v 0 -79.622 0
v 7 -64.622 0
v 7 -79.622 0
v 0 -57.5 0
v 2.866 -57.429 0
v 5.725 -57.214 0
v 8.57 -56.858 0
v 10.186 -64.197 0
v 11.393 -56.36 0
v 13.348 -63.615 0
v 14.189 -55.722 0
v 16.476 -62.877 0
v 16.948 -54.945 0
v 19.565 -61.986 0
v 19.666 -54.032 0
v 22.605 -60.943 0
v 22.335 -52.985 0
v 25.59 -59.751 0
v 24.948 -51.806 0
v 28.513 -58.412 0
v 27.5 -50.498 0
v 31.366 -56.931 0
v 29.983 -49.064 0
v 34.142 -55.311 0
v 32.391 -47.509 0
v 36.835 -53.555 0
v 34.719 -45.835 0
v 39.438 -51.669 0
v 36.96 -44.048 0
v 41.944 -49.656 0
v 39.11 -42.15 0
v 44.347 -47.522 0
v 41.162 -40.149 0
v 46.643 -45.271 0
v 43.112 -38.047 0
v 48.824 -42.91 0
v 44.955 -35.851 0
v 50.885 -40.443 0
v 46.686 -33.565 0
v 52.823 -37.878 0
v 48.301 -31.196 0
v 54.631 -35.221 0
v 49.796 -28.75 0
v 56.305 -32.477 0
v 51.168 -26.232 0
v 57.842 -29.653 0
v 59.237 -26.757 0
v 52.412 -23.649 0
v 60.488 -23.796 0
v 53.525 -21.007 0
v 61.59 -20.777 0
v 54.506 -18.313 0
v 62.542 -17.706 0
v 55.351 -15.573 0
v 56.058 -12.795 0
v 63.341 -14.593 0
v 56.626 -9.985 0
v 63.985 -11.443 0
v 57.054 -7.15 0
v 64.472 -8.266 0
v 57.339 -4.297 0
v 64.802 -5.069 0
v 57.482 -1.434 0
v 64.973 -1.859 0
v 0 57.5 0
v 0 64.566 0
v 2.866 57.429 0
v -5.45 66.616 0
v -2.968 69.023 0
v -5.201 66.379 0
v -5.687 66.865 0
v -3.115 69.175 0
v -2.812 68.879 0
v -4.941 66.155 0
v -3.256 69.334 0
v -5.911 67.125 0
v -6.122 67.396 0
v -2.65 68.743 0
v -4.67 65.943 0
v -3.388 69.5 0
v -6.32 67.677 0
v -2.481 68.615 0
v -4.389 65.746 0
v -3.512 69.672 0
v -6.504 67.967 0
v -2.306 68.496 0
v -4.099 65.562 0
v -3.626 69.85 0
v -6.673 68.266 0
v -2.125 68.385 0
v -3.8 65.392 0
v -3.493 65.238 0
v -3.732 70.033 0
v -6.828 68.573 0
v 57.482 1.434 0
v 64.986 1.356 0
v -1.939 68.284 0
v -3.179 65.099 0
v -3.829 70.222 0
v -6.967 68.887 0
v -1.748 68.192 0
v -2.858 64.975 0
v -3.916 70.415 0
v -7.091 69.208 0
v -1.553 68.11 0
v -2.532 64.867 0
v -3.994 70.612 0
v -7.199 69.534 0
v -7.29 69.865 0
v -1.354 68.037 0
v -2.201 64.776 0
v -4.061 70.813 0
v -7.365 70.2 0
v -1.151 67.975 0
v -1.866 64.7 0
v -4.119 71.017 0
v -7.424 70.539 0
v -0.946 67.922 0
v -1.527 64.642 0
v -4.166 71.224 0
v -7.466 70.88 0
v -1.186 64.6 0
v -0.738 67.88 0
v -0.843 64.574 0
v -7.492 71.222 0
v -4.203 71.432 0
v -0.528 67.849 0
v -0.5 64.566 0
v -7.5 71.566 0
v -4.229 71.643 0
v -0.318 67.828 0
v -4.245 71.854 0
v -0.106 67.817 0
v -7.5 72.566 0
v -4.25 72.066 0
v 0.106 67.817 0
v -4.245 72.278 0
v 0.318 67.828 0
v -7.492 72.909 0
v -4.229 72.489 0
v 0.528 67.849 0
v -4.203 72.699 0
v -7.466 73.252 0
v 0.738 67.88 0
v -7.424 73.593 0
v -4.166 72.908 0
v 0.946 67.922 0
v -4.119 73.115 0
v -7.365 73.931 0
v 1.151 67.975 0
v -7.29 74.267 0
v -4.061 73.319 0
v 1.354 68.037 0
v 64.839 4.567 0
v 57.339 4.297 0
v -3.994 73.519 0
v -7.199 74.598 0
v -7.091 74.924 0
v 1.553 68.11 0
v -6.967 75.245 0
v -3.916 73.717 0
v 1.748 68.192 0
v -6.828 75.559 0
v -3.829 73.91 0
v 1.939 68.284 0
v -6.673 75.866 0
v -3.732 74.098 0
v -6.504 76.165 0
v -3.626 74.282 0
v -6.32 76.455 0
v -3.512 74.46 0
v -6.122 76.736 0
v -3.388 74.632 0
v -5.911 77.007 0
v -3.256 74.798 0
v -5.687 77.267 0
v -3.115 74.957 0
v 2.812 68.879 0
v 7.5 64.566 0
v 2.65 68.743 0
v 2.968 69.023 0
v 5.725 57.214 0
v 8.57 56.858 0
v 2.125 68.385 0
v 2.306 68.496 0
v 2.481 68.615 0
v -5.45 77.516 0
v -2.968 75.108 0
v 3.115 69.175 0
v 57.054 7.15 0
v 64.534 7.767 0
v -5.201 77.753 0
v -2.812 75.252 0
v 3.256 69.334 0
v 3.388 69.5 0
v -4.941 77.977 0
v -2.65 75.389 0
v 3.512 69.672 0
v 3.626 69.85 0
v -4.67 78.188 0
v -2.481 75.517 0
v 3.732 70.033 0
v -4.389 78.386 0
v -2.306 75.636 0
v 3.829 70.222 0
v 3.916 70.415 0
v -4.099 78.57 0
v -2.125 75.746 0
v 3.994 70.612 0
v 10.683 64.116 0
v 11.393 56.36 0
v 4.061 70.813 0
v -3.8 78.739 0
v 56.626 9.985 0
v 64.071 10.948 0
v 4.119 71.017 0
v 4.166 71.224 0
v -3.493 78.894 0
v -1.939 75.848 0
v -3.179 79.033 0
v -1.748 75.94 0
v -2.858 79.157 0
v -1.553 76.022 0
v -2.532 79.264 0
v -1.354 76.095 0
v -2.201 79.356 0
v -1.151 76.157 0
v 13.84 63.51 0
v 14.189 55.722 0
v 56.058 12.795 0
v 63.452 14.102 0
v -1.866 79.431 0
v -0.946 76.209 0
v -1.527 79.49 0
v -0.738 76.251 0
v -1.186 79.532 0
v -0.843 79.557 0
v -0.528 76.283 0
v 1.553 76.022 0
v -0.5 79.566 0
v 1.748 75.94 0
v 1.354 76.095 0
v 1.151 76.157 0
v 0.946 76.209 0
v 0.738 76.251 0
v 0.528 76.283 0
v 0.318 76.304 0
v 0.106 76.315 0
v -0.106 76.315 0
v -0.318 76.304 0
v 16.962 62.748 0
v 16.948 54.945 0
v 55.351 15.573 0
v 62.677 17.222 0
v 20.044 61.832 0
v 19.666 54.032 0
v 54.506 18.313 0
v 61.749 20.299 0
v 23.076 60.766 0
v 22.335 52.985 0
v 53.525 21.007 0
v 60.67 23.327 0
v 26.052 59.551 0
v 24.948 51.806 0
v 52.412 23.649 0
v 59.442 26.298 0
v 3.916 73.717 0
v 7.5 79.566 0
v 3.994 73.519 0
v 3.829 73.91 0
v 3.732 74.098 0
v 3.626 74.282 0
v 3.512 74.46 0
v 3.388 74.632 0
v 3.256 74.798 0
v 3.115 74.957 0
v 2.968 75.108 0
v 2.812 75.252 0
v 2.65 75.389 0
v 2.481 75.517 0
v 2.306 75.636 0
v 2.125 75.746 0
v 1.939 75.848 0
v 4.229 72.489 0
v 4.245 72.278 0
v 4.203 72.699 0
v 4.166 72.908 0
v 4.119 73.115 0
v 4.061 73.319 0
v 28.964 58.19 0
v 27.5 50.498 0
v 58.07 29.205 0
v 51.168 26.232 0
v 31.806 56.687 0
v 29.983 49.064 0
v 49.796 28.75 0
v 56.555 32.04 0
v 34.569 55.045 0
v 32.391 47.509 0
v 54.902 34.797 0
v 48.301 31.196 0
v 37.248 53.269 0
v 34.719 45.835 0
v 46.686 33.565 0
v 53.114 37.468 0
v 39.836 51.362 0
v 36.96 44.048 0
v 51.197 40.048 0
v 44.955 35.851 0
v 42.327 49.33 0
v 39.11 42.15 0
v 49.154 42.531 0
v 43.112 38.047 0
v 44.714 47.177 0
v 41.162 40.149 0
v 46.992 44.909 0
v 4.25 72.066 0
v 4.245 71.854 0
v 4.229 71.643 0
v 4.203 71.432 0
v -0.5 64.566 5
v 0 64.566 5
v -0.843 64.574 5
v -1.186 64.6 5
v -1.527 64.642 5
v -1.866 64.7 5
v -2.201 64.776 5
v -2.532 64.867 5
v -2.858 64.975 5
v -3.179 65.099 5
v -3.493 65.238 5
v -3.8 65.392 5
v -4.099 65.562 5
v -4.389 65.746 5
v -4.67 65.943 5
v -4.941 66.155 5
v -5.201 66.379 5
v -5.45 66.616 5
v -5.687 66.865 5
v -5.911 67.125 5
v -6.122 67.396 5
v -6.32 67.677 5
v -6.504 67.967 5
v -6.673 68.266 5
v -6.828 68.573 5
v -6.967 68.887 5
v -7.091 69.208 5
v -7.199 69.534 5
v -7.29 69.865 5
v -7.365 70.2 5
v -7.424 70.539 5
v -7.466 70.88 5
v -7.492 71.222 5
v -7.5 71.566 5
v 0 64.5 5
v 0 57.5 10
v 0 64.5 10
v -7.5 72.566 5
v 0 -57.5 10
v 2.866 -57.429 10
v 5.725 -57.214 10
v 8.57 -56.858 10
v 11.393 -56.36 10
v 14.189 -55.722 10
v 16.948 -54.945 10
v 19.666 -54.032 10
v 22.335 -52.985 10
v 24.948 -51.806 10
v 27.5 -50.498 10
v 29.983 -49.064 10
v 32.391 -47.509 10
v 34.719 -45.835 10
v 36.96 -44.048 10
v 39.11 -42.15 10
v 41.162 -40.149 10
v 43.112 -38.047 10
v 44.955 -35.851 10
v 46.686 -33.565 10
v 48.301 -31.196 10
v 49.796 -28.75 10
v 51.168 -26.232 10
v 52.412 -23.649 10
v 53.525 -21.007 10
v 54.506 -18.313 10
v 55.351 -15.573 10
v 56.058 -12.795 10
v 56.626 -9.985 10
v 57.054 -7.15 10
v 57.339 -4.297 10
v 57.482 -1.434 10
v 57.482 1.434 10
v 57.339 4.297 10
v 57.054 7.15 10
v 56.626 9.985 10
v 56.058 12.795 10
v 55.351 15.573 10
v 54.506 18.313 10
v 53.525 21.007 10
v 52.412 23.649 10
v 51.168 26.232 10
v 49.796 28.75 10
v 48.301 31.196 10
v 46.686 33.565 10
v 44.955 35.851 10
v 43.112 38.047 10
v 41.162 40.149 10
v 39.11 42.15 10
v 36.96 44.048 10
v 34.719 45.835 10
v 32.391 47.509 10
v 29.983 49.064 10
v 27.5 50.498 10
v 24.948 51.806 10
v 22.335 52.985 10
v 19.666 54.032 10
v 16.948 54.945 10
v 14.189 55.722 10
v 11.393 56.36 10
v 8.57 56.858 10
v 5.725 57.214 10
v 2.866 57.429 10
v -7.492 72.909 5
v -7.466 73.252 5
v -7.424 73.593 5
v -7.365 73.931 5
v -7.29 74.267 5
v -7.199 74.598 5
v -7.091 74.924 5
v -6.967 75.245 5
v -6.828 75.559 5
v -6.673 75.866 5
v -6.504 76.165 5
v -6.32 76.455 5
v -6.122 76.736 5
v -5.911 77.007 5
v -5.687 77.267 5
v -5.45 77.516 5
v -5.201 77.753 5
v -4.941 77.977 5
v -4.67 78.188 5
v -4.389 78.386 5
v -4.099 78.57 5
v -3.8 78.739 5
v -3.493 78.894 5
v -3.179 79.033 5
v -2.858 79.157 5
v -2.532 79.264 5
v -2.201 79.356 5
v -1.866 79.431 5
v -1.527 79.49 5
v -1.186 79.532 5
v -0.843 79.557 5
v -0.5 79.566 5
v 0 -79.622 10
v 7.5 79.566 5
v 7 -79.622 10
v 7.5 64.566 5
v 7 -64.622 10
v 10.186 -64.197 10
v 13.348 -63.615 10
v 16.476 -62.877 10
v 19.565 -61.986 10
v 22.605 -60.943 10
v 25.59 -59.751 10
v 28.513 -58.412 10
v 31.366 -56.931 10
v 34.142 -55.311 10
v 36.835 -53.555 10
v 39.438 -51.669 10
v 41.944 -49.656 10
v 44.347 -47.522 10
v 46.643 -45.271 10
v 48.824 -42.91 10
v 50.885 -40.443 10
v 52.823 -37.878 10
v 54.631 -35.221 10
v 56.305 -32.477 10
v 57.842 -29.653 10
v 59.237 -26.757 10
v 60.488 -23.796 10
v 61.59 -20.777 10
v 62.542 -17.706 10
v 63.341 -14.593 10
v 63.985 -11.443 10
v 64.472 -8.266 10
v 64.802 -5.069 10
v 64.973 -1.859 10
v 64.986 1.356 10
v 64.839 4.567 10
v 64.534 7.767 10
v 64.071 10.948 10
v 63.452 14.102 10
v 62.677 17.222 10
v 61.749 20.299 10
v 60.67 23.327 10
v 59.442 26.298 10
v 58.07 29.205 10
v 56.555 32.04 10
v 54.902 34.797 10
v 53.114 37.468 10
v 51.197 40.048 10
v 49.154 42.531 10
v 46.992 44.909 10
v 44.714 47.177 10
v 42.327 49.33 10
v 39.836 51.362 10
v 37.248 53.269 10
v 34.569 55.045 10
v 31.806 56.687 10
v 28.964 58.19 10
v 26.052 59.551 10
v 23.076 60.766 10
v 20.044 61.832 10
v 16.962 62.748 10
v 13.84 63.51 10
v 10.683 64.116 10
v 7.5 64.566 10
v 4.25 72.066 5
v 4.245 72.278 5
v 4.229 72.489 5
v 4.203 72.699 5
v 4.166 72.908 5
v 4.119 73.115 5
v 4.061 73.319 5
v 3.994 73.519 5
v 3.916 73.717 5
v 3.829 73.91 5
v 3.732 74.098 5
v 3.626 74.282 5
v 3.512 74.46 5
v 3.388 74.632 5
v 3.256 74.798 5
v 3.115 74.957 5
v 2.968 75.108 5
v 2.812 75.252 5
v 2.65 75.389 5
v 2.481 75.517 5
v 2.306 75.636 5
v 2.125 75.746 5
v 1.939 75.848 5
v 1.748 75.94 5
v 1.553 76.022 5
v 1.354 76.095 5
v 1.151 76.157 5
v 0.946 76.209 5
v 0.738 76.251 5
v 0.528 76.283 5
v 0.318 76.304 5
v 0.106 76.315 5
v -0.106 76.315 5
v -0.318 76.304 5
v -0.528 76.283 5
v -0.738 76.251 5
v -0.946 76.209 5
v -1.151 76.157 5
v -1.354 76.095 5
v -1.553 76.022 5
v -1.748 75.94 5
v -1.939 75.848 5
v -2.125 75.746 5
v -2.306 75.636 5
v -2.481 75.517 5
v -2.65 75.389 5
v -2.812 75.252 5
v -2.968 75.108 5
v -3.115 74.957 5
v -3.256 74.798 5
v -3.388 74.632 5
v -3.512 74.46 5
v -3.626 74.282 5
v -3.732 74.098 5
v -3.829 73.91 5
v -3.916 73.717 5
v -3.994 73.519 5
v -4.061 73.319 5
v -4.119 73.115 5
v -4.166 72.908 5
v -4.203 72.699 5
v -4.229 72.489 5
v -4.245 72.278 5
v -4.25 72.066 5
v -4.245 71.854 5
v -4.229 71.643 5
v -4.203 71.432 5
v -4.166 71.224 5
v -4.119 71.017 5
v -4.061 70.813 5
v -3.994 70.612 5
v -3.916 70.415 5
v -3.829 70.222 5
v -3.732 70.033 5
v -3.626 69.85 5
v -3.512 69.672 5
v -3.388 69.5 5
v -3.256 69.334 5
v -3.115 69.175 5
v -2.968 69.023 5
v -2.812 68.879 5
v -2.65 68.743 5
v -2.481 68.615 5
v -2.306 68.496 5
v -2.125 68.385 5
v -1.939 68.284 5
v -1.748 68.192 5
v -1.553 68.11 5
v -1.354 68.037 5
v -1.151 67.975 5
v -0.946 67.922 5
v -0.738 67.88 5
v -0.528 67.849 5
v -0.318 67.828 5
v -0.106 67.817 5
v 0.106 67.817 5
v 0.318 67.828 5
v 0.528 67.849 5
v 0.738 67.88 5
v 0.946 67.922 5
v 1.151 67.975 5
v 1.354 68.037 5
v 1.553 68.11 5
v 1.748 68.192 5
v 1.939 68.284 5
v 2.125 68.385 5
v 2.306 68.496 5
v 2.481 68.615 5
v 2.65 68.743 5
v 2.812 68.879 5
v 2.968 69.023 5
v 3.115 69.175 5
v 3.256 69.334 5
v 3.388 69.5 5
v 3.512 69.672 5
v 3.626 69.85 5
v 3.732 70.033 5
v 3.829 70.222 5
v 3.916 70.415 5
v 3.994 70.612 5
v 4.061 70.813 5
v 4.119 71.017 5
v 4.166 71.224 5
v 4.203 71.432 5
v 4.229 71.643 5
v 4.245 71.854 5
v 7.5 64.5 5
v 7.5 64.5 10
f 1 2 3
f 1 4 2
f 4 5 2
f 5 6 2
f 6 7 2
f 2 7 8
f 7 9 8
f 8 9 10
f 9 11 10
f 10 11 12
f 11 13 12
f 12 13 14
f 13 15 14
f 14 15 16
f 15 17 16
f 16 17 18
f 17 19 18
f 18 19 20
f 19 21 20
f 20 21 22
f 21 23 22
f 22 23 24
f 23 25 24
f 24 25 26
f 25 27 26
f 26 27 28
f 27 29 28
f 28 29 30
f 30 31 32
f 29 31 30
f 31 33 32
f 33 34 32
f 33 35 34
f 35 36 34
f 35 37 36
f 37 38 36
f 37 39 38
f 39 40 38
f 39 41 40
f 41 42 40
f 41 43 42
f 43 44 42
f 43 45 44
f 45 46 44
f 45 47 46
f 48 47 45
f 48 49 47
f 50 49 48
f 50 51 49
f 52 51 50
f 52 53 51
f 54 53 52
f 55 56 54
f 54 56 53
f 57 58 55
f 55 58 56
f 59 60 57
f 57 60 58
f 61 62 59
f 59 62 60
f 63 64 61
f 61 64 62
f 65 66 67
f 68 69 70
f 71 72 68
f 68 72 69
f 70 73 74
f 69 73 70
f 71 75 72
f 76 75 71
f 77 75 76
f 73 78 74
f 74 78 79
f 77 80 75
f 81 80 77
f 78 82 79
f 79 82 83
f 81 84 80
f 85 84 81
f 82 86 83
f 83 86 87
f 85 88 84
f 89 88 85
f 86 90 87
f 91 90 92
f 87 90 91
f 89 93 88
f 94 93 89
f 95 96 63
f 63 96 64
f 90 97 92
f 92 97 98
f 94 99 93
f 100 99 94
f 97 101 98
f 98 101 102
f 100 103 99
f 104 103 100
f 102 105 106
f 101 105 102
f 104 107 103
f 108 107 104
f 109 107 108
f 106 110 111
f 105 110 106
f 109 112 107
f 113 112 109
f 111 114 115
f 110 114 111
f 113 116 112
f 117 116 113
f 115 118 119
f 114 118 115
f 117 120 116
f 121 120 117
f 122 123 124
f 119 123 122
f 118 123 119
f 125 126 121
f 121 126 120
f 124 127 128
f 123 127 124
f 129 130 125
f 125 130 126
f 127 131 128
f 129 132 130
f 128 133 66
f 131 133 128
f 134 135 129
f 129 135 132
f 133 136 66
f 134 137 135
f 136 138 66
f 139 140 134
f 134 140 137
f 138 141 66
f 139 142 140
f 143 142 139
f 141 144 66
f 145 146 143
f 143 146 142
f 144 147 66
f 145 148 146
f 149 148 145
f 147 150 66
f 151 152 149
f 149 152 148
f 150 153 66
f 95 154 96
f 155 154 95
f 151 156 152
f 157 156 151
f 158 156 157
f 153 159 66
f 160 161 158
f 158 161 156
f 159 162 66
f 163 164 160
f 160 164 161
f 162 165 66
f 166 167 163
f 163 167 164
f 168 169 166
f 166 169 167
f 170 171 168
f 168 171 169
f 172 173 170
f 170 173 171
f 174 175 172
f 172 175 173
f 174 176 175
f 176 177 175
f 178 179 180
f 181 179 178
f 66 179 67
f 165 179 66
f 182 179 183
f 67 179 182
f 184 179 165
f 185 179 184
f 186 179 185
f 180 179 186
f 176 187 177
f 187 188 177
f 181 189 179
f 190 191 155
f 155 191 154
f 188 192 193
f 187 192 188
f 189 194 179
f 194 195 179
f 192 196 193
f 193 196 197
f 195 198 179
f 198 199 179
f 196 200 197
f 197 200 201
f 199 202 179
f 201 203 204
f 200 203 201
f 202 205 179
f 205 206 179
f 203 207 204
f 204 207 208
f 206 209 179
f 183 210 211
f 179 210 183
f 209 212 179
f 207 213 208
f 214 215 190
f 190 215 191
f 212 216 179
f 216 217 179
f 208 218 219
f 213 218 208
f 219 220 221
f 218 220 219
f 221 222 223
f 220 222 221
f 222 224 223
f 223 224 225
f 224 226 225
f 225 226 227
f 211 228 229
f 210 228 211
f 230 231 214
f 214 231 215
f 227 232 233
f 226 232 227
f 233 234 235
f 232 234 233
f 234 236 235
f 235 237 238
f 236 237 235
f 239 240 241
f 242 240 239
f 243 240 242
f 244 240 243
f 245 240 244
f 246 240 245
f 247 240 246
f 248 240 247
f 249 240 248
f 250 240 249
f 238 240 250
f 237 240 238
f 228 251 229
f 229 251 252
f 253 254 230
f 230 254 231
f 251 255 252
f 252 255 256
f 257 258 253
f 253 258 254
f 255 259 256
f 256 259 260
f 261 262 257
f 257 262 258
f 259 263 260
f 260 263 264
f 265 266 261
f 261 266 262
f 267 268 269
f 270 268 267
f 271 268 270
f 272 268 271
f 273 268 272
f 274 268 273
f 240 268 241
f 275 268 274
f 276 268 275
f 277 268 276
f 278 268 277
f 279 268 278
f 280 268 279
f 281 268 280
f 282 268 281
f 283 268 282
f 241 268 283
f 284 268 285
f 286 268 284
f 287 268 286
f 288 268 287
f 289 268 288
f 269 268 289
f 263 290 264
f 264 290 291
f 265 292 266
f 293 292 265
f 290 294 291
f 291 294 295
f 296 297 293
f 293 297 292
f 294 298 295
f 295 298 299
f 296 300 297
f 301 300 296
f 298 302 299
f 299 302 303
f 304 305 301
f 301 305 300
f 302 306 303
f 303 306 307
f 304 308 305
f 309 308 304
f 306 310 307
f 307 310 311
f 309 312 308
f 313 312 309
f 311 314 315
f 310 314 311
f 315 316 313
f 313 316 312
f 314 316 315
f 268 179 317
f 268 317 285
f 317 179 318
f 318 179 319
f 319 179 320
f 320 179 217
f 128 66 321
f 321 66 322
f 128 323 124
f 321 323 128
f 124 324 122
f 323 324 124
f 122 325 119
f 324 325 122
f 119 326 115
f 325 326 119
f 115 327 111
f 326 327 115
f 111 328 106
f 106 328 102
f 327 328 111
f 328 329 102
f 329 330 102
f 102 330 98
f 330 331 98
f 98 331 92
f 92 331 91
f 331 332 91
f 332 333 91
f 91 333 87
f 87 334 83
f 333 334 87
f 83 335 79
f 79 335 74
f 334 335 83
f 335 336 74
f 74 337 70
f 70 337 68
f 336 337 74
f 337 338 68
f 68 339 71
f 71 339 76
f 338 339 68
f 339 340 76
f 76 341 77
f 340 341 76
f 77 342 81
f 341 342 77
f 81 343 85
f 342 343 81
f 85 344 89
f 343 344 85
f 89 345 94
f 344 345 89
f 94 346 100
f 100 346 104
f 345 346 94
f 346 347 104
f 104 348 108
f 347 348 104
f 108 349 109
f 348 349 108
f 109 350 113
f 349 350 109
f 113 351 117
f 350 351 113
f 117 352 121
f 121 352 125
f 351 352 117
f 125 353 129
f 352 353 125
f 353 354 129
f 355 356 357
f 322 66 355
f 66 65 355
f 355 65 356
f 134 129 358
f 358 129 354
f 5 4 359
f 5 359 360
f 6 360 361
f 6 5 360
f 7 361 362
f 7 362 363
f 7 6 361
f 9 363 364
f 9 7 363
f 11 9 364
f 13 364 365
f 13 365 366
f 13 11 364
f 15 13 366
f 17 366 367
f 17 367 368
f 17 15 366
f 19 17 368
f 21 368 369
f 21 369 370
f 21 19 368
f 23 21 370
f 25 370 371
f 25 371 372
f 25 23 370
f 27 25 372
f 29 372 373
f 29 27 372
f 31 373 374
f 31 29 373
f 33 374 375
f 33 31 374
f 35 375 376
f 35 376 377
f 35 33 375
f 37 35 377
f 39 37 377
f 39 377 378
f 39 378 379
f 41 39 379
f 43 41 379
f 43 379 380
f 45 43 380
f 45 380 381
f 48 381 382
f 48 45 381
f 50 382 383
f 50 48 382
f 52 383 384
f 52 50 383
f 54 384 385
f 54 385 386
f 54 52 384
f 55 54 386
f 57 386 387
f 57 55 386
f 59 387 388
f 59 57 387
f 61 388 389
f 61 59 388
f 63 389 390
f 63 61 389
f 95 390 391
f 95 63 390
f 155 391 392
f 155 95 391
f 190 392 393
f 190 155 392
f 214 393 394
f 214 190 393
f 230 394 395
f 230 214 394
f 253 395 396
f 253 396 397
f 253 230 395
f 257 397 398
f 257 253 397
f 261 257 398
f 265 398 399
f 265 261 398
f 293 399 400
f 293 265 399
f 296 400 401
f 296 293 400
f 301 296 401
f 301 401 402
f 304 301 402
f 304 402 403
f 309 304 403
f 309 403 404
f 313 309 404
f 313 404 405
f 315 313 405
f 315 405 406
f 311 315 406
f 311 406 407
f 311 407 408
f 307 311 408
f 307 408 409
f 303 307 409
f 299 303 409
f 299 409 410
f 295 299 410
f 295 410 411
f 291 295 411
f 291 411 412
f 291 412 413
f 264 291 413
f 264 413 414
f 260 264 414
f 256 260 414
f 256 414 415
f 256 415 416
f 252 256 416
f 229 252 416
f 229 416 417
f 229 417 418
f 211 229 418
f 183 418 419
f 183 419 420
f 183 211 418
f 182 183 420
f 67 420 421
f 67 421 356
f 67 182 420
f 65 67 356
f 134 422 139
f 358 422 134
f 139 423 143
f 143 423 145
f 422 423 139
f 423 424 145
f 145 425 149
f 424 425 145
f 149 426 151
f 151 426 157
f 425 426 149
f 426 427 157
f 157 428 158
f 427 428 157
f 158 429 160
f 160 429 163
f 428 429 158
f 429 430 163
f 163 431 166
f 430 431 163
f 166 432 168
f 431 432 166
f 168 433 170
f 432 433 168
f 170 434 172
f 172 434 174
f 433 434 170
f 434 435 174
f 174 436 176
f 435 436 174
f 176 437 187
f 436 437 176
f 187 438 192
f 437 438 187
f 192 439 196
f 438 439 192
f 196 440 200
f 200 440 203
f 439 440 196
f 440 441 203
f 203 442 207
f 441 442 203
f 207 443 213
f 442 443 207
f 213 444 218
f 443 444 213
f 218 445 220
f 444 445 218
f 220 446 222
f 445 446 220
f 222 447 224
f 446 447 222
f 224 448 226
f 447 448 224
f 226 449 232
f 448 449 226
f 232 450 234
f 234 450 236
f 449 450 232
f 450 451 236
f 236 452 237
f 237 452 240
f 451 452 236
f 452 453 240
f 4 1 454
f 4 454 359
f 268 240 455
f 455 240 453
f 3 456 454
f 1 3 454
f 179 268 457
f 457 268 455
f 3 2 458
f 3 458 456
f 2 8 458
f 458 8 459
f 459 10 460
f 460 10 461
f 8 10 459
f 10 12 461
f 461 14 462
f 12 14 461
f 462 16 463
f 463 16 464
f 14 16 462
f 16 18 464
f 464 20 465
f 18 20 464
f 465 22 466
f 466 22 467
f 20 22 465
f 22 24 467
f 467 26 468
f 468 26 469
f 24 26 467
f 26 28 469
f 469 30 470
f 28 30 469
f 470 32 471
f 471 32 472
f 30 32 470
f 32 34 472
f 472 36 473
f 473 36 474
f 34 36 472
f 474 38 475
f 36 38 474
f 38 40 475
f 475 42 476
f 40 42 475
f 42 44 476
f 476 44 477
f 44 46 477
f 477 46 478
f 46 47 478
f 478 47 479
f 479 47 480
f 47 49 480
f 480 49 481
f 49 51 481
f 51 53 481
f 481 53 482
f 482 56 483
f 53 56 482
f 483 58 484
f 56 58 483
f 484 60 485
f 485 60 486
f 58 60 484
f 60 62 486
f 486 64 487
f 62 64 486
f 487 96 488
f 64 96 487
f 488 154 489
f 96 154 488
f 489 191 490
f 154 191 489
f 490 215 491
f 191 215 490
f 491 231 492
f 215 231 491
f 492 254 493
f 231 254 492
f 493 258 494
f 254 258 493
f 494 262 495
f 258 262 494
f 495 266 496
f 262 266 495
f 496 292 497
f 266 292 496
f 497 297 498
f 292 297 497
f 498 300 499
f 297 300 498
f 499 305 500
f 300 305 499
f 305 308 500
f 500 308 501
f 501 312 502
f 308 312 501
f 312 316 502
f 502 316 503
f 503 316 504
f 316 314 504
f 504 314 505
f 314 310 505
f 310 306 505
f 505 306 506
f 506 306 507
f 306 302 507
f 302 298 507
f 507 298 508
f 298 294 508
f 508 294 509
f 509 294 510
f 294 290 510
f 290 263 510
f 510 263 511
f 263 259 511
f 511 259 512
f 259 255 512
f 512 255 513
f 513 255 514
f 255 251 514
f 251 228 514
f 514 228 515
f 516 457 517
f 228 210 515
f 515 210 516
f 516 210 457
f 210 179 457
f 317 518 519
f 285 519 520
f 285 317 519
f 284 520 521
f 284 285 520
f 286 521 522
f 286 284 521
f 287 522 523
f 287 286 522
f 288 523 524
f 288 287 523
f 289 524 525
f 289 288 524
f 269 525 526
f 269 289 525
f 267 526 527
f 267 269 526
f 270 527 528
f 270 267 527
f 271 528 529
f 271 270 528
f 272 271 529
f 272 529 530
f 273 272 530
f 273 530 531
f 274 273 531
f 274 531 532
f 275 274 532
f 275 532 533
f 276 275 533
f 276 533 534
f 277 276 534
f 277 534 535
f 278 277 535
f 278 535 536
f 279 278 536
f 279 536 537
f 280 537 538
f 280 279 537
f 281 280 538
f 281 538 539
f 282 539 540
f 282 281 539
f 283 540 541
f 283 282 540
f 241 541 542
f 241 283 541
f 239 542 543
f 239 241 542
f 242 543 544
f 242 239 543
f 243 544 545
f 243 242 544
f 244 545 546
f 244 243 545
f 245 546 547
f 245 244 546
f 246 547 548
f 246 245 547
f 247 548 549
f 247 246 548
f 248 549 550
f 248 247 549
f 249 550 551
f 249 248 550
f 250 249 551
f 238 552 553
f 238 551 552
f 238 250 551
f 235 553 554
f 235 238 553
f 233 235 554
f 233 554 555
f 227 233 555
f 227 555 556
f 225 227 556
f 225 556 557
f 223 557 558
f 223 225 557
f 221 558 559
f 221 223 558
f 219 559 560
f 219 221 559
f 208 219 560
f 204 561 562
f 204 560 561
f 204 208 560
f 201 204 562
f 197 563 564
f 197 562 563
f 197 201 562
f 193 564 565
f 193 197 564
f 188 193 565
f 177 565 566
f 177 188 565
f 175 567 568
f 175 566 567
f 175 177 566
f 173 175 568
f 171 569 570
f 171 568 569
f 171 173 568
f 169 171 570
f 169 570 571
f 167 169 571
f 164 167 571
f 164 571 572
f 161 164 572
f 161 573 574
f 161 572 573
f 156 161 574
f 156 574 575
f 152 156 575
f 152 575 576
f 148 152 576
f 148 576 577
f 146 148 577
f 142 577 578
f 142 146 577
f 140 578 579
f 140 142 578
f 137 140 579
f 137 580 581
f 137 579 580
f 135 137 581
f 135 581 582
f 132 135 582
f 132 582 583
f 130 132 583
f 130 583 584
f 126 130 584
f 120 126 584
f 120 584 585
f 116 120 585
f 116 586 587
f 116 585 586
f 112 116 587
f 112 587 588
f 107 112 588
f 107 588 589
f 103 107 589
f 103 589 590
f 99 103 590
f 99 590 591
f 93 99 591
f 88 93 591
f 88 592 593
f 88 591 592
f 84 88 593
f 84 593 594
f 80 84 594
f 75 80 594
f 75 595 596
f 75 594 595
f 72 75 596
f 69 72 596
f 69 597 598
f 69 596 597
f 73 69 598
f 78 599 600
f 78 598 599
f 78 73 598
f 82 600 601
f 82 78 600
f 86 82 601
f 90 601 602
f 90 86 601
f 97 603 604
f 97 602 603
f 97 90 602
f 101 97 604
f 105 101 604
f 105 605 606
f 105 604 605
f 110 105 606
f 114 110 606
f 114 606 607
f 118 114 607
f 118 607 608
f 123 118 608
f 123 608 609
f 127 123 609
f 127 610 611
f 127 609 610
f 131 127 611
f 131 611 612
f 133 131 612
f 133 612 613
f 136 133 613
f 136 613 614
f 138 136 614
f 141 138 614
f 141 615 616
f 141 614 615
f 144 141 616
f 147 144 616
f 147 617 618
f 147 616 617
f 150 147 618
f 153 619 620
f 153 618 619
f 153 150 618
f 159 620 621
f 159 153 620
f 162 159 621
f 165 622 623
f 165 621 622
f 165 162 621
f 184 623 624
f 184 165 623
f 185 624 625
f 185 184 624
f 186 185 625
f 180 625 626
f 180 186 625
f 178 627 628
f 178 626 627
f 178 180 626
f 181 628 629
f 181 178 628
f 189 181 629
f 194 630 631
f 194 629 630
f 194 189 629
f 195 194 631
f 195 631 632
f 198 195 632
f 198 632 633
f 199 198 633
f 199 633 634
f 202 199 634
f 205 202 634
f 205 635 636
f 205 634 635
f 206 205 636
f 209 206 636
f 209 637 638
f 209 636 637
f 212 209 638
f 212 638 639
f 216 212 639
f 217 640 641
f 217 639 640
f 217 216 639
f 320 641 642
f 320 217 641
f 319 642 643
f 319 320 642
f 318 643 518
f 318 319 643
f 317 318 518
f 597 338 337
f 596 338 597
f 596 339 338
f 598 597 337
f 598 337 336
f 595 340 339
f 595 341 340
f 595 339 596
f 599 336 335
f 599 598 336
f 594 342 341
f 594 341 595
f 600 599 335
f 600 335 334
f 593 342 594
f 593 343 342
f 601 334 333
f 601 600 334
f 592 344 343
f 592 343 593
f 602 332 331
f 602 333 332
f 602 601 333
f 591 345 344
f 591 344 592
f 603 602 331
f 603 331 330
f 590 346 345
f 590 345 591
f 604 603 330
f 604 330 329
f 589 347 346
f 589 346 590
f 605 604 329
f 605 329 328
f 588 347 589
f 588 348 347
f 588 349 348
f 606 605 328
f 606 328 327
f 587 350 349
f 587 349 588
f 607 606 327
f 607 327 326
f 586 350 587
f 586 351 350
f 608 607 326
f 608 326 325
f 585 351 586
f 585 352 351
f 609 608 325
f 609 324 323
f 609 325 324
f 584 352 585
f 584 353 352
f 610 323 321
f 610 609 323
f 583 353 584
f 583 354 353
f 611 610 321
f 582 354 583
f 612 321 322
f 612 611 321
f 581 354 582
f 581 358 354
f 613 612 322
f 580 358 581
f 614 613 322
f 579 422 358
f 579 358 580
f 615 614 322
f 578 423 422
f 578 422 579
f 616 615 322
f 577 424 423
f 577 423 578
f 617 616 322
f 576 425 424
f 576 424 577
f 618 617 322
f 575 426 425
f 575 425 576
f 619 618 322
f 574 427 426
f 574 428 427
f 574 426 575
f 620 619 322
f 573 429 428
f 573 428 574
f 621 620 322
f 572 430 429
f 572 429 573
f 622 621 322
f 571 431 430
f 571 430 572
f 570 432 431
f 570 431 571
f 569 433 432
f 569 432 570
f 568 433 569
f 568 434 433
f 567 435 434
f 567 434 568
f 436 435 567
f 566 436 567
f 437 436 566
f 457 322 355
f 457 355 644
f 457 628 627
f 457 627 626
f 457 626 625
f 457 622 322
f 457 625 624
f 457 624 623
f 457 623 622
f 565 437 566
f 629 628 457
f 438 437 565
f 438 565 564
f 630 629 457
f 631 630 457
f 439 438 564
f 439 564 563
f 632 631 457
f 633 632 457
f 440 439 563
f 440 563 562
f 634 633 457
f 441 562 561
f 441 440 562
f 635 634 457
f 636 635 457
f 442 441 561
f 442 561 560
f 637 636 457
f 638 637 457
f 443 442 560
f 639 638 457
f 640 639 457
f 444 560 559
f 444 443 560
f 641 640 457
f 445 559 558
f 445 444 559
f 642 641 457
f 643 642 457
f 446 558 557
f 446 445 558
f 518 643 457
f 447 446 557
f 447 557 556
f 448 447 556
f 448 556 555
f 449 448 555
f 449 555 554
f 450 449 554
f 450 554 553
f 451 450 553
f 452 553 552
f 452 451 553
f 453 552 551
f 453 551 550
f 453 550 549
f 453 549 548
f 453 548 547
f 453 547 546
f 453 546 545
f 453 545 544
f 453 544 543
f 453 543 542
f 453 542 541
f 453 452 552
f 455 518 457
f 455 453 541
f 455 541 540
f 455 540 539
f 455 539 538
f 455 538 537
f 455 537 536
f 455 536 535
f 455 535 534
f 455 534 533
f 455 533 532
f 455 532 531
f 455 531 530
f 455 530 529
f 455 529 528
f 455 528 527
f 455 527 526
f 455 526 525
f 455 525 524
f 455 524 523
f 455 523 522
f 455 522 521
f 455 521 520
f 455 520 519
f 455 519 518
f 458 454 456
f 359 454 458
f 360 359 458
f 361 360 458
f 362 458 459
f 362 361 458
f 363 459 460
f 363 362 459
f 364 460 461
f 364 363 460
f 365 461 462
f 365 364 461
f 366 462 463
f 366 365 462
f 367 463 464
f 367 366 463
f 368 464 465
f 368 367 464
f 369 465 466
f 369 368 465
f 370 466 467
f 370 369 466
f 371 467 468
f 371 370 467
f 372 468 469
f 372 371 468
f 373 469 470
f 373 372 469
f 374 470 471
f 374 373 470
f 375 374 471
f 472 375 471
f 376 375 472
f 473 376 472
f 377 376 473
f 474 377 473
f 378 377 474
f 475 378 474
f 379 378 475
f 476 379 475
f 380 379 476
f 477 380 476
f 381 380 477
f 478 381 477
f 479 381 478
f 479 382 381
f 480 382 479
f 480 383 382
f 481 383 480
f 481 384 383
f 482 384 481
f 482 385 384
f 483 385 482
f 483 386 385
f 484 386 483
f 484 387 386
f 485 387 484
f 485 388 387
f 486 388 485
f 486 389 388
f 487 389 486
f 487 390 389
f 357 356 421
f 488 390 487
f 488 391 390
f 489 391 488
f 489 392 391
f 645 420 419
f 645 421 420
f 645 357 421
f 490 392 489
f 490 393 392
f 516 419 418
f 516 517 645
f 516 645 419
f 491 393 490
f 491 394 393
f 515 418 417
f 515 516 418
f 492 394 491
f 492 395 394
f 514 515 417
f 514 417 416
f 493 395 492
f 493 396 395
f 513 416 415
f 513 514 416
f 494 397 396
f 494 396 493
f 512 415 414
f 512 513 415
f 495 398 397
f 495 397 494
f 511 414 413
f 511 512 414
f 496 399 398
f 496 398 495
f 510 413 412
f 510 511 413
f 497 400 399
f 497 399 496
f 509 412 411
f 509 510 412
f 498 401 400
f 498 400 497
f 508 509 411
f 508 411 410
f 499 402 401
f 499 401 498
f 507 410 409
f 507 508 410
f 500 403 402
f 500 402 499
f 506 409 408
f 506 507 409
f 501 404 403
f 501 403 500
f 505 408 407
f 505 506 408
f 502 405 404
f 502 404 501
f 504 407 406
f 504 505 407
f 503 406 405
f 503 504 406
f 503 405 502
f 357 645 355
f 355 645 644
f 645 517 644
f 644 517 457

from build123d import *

# Parameters (mm, degrees)
SKETCH_R     = 4.25
PAD_DEPTH    = 10
SKETCH001_W  = 16
SKETCH001_H  = 16
POCKET_DEPTH = 5
FILLET_R     = 7


with BuildPart() as part:
    # Sketch → Pad (new body)
    with BuildSketch(Plane.XY):
        with BuildLine():
            ThreePointArc((0, -57.5), (57.5, 0), (0, 57.5))
            Line((0, 64.565858), (0, 57.5))
            Line((-7.5, 64.565858), (0, 64.565858))
            Line((-7.5, 79.565858), (-7.5, 64.565858))
            Line((7.5, 79.565858), (-7.5, 79.565858))
            Line((7.5, 64.565858), (7.5, 79.565858))
            ThreePointArc((7, -64.621978), (64.999513, -0.25157), (7.5, 64.565858))
            Line((7, -64.621978), (7, -79.621978))
            Line((7, -79.621978), (0, -79.621978))
            Line((0, -79.621978), (0, -57.5))
        make_face()
        with Locations((0, 72.065858)):
            Circle(SKETCH_R, mode=Mode.SUBTRACT)
    extrude(amount=PAD_DEPTH)

    # Sketch001 (on Face13 of Pad) → Pocket (cut)
    with BuildSketch(Plane.XY.offset(10)):
        with Locations((-0.5, 72.5)):
            Rectangle(SKETCH001_W, SKETCH001_H)
    extrude(amount=-POCKET_DEPTH, mode=Mode.SUBTRACT)

    # Fillet
    fillet_edges = [part.edges().sort_by_distance(p)[0] for p in [
        (-7.5, 64.565858, 2.5),
        (-7.5, 79.565858, 2.5),
    ]]
    fillet(fillet_edges, radius=FILLET_R)


solid = part.part
